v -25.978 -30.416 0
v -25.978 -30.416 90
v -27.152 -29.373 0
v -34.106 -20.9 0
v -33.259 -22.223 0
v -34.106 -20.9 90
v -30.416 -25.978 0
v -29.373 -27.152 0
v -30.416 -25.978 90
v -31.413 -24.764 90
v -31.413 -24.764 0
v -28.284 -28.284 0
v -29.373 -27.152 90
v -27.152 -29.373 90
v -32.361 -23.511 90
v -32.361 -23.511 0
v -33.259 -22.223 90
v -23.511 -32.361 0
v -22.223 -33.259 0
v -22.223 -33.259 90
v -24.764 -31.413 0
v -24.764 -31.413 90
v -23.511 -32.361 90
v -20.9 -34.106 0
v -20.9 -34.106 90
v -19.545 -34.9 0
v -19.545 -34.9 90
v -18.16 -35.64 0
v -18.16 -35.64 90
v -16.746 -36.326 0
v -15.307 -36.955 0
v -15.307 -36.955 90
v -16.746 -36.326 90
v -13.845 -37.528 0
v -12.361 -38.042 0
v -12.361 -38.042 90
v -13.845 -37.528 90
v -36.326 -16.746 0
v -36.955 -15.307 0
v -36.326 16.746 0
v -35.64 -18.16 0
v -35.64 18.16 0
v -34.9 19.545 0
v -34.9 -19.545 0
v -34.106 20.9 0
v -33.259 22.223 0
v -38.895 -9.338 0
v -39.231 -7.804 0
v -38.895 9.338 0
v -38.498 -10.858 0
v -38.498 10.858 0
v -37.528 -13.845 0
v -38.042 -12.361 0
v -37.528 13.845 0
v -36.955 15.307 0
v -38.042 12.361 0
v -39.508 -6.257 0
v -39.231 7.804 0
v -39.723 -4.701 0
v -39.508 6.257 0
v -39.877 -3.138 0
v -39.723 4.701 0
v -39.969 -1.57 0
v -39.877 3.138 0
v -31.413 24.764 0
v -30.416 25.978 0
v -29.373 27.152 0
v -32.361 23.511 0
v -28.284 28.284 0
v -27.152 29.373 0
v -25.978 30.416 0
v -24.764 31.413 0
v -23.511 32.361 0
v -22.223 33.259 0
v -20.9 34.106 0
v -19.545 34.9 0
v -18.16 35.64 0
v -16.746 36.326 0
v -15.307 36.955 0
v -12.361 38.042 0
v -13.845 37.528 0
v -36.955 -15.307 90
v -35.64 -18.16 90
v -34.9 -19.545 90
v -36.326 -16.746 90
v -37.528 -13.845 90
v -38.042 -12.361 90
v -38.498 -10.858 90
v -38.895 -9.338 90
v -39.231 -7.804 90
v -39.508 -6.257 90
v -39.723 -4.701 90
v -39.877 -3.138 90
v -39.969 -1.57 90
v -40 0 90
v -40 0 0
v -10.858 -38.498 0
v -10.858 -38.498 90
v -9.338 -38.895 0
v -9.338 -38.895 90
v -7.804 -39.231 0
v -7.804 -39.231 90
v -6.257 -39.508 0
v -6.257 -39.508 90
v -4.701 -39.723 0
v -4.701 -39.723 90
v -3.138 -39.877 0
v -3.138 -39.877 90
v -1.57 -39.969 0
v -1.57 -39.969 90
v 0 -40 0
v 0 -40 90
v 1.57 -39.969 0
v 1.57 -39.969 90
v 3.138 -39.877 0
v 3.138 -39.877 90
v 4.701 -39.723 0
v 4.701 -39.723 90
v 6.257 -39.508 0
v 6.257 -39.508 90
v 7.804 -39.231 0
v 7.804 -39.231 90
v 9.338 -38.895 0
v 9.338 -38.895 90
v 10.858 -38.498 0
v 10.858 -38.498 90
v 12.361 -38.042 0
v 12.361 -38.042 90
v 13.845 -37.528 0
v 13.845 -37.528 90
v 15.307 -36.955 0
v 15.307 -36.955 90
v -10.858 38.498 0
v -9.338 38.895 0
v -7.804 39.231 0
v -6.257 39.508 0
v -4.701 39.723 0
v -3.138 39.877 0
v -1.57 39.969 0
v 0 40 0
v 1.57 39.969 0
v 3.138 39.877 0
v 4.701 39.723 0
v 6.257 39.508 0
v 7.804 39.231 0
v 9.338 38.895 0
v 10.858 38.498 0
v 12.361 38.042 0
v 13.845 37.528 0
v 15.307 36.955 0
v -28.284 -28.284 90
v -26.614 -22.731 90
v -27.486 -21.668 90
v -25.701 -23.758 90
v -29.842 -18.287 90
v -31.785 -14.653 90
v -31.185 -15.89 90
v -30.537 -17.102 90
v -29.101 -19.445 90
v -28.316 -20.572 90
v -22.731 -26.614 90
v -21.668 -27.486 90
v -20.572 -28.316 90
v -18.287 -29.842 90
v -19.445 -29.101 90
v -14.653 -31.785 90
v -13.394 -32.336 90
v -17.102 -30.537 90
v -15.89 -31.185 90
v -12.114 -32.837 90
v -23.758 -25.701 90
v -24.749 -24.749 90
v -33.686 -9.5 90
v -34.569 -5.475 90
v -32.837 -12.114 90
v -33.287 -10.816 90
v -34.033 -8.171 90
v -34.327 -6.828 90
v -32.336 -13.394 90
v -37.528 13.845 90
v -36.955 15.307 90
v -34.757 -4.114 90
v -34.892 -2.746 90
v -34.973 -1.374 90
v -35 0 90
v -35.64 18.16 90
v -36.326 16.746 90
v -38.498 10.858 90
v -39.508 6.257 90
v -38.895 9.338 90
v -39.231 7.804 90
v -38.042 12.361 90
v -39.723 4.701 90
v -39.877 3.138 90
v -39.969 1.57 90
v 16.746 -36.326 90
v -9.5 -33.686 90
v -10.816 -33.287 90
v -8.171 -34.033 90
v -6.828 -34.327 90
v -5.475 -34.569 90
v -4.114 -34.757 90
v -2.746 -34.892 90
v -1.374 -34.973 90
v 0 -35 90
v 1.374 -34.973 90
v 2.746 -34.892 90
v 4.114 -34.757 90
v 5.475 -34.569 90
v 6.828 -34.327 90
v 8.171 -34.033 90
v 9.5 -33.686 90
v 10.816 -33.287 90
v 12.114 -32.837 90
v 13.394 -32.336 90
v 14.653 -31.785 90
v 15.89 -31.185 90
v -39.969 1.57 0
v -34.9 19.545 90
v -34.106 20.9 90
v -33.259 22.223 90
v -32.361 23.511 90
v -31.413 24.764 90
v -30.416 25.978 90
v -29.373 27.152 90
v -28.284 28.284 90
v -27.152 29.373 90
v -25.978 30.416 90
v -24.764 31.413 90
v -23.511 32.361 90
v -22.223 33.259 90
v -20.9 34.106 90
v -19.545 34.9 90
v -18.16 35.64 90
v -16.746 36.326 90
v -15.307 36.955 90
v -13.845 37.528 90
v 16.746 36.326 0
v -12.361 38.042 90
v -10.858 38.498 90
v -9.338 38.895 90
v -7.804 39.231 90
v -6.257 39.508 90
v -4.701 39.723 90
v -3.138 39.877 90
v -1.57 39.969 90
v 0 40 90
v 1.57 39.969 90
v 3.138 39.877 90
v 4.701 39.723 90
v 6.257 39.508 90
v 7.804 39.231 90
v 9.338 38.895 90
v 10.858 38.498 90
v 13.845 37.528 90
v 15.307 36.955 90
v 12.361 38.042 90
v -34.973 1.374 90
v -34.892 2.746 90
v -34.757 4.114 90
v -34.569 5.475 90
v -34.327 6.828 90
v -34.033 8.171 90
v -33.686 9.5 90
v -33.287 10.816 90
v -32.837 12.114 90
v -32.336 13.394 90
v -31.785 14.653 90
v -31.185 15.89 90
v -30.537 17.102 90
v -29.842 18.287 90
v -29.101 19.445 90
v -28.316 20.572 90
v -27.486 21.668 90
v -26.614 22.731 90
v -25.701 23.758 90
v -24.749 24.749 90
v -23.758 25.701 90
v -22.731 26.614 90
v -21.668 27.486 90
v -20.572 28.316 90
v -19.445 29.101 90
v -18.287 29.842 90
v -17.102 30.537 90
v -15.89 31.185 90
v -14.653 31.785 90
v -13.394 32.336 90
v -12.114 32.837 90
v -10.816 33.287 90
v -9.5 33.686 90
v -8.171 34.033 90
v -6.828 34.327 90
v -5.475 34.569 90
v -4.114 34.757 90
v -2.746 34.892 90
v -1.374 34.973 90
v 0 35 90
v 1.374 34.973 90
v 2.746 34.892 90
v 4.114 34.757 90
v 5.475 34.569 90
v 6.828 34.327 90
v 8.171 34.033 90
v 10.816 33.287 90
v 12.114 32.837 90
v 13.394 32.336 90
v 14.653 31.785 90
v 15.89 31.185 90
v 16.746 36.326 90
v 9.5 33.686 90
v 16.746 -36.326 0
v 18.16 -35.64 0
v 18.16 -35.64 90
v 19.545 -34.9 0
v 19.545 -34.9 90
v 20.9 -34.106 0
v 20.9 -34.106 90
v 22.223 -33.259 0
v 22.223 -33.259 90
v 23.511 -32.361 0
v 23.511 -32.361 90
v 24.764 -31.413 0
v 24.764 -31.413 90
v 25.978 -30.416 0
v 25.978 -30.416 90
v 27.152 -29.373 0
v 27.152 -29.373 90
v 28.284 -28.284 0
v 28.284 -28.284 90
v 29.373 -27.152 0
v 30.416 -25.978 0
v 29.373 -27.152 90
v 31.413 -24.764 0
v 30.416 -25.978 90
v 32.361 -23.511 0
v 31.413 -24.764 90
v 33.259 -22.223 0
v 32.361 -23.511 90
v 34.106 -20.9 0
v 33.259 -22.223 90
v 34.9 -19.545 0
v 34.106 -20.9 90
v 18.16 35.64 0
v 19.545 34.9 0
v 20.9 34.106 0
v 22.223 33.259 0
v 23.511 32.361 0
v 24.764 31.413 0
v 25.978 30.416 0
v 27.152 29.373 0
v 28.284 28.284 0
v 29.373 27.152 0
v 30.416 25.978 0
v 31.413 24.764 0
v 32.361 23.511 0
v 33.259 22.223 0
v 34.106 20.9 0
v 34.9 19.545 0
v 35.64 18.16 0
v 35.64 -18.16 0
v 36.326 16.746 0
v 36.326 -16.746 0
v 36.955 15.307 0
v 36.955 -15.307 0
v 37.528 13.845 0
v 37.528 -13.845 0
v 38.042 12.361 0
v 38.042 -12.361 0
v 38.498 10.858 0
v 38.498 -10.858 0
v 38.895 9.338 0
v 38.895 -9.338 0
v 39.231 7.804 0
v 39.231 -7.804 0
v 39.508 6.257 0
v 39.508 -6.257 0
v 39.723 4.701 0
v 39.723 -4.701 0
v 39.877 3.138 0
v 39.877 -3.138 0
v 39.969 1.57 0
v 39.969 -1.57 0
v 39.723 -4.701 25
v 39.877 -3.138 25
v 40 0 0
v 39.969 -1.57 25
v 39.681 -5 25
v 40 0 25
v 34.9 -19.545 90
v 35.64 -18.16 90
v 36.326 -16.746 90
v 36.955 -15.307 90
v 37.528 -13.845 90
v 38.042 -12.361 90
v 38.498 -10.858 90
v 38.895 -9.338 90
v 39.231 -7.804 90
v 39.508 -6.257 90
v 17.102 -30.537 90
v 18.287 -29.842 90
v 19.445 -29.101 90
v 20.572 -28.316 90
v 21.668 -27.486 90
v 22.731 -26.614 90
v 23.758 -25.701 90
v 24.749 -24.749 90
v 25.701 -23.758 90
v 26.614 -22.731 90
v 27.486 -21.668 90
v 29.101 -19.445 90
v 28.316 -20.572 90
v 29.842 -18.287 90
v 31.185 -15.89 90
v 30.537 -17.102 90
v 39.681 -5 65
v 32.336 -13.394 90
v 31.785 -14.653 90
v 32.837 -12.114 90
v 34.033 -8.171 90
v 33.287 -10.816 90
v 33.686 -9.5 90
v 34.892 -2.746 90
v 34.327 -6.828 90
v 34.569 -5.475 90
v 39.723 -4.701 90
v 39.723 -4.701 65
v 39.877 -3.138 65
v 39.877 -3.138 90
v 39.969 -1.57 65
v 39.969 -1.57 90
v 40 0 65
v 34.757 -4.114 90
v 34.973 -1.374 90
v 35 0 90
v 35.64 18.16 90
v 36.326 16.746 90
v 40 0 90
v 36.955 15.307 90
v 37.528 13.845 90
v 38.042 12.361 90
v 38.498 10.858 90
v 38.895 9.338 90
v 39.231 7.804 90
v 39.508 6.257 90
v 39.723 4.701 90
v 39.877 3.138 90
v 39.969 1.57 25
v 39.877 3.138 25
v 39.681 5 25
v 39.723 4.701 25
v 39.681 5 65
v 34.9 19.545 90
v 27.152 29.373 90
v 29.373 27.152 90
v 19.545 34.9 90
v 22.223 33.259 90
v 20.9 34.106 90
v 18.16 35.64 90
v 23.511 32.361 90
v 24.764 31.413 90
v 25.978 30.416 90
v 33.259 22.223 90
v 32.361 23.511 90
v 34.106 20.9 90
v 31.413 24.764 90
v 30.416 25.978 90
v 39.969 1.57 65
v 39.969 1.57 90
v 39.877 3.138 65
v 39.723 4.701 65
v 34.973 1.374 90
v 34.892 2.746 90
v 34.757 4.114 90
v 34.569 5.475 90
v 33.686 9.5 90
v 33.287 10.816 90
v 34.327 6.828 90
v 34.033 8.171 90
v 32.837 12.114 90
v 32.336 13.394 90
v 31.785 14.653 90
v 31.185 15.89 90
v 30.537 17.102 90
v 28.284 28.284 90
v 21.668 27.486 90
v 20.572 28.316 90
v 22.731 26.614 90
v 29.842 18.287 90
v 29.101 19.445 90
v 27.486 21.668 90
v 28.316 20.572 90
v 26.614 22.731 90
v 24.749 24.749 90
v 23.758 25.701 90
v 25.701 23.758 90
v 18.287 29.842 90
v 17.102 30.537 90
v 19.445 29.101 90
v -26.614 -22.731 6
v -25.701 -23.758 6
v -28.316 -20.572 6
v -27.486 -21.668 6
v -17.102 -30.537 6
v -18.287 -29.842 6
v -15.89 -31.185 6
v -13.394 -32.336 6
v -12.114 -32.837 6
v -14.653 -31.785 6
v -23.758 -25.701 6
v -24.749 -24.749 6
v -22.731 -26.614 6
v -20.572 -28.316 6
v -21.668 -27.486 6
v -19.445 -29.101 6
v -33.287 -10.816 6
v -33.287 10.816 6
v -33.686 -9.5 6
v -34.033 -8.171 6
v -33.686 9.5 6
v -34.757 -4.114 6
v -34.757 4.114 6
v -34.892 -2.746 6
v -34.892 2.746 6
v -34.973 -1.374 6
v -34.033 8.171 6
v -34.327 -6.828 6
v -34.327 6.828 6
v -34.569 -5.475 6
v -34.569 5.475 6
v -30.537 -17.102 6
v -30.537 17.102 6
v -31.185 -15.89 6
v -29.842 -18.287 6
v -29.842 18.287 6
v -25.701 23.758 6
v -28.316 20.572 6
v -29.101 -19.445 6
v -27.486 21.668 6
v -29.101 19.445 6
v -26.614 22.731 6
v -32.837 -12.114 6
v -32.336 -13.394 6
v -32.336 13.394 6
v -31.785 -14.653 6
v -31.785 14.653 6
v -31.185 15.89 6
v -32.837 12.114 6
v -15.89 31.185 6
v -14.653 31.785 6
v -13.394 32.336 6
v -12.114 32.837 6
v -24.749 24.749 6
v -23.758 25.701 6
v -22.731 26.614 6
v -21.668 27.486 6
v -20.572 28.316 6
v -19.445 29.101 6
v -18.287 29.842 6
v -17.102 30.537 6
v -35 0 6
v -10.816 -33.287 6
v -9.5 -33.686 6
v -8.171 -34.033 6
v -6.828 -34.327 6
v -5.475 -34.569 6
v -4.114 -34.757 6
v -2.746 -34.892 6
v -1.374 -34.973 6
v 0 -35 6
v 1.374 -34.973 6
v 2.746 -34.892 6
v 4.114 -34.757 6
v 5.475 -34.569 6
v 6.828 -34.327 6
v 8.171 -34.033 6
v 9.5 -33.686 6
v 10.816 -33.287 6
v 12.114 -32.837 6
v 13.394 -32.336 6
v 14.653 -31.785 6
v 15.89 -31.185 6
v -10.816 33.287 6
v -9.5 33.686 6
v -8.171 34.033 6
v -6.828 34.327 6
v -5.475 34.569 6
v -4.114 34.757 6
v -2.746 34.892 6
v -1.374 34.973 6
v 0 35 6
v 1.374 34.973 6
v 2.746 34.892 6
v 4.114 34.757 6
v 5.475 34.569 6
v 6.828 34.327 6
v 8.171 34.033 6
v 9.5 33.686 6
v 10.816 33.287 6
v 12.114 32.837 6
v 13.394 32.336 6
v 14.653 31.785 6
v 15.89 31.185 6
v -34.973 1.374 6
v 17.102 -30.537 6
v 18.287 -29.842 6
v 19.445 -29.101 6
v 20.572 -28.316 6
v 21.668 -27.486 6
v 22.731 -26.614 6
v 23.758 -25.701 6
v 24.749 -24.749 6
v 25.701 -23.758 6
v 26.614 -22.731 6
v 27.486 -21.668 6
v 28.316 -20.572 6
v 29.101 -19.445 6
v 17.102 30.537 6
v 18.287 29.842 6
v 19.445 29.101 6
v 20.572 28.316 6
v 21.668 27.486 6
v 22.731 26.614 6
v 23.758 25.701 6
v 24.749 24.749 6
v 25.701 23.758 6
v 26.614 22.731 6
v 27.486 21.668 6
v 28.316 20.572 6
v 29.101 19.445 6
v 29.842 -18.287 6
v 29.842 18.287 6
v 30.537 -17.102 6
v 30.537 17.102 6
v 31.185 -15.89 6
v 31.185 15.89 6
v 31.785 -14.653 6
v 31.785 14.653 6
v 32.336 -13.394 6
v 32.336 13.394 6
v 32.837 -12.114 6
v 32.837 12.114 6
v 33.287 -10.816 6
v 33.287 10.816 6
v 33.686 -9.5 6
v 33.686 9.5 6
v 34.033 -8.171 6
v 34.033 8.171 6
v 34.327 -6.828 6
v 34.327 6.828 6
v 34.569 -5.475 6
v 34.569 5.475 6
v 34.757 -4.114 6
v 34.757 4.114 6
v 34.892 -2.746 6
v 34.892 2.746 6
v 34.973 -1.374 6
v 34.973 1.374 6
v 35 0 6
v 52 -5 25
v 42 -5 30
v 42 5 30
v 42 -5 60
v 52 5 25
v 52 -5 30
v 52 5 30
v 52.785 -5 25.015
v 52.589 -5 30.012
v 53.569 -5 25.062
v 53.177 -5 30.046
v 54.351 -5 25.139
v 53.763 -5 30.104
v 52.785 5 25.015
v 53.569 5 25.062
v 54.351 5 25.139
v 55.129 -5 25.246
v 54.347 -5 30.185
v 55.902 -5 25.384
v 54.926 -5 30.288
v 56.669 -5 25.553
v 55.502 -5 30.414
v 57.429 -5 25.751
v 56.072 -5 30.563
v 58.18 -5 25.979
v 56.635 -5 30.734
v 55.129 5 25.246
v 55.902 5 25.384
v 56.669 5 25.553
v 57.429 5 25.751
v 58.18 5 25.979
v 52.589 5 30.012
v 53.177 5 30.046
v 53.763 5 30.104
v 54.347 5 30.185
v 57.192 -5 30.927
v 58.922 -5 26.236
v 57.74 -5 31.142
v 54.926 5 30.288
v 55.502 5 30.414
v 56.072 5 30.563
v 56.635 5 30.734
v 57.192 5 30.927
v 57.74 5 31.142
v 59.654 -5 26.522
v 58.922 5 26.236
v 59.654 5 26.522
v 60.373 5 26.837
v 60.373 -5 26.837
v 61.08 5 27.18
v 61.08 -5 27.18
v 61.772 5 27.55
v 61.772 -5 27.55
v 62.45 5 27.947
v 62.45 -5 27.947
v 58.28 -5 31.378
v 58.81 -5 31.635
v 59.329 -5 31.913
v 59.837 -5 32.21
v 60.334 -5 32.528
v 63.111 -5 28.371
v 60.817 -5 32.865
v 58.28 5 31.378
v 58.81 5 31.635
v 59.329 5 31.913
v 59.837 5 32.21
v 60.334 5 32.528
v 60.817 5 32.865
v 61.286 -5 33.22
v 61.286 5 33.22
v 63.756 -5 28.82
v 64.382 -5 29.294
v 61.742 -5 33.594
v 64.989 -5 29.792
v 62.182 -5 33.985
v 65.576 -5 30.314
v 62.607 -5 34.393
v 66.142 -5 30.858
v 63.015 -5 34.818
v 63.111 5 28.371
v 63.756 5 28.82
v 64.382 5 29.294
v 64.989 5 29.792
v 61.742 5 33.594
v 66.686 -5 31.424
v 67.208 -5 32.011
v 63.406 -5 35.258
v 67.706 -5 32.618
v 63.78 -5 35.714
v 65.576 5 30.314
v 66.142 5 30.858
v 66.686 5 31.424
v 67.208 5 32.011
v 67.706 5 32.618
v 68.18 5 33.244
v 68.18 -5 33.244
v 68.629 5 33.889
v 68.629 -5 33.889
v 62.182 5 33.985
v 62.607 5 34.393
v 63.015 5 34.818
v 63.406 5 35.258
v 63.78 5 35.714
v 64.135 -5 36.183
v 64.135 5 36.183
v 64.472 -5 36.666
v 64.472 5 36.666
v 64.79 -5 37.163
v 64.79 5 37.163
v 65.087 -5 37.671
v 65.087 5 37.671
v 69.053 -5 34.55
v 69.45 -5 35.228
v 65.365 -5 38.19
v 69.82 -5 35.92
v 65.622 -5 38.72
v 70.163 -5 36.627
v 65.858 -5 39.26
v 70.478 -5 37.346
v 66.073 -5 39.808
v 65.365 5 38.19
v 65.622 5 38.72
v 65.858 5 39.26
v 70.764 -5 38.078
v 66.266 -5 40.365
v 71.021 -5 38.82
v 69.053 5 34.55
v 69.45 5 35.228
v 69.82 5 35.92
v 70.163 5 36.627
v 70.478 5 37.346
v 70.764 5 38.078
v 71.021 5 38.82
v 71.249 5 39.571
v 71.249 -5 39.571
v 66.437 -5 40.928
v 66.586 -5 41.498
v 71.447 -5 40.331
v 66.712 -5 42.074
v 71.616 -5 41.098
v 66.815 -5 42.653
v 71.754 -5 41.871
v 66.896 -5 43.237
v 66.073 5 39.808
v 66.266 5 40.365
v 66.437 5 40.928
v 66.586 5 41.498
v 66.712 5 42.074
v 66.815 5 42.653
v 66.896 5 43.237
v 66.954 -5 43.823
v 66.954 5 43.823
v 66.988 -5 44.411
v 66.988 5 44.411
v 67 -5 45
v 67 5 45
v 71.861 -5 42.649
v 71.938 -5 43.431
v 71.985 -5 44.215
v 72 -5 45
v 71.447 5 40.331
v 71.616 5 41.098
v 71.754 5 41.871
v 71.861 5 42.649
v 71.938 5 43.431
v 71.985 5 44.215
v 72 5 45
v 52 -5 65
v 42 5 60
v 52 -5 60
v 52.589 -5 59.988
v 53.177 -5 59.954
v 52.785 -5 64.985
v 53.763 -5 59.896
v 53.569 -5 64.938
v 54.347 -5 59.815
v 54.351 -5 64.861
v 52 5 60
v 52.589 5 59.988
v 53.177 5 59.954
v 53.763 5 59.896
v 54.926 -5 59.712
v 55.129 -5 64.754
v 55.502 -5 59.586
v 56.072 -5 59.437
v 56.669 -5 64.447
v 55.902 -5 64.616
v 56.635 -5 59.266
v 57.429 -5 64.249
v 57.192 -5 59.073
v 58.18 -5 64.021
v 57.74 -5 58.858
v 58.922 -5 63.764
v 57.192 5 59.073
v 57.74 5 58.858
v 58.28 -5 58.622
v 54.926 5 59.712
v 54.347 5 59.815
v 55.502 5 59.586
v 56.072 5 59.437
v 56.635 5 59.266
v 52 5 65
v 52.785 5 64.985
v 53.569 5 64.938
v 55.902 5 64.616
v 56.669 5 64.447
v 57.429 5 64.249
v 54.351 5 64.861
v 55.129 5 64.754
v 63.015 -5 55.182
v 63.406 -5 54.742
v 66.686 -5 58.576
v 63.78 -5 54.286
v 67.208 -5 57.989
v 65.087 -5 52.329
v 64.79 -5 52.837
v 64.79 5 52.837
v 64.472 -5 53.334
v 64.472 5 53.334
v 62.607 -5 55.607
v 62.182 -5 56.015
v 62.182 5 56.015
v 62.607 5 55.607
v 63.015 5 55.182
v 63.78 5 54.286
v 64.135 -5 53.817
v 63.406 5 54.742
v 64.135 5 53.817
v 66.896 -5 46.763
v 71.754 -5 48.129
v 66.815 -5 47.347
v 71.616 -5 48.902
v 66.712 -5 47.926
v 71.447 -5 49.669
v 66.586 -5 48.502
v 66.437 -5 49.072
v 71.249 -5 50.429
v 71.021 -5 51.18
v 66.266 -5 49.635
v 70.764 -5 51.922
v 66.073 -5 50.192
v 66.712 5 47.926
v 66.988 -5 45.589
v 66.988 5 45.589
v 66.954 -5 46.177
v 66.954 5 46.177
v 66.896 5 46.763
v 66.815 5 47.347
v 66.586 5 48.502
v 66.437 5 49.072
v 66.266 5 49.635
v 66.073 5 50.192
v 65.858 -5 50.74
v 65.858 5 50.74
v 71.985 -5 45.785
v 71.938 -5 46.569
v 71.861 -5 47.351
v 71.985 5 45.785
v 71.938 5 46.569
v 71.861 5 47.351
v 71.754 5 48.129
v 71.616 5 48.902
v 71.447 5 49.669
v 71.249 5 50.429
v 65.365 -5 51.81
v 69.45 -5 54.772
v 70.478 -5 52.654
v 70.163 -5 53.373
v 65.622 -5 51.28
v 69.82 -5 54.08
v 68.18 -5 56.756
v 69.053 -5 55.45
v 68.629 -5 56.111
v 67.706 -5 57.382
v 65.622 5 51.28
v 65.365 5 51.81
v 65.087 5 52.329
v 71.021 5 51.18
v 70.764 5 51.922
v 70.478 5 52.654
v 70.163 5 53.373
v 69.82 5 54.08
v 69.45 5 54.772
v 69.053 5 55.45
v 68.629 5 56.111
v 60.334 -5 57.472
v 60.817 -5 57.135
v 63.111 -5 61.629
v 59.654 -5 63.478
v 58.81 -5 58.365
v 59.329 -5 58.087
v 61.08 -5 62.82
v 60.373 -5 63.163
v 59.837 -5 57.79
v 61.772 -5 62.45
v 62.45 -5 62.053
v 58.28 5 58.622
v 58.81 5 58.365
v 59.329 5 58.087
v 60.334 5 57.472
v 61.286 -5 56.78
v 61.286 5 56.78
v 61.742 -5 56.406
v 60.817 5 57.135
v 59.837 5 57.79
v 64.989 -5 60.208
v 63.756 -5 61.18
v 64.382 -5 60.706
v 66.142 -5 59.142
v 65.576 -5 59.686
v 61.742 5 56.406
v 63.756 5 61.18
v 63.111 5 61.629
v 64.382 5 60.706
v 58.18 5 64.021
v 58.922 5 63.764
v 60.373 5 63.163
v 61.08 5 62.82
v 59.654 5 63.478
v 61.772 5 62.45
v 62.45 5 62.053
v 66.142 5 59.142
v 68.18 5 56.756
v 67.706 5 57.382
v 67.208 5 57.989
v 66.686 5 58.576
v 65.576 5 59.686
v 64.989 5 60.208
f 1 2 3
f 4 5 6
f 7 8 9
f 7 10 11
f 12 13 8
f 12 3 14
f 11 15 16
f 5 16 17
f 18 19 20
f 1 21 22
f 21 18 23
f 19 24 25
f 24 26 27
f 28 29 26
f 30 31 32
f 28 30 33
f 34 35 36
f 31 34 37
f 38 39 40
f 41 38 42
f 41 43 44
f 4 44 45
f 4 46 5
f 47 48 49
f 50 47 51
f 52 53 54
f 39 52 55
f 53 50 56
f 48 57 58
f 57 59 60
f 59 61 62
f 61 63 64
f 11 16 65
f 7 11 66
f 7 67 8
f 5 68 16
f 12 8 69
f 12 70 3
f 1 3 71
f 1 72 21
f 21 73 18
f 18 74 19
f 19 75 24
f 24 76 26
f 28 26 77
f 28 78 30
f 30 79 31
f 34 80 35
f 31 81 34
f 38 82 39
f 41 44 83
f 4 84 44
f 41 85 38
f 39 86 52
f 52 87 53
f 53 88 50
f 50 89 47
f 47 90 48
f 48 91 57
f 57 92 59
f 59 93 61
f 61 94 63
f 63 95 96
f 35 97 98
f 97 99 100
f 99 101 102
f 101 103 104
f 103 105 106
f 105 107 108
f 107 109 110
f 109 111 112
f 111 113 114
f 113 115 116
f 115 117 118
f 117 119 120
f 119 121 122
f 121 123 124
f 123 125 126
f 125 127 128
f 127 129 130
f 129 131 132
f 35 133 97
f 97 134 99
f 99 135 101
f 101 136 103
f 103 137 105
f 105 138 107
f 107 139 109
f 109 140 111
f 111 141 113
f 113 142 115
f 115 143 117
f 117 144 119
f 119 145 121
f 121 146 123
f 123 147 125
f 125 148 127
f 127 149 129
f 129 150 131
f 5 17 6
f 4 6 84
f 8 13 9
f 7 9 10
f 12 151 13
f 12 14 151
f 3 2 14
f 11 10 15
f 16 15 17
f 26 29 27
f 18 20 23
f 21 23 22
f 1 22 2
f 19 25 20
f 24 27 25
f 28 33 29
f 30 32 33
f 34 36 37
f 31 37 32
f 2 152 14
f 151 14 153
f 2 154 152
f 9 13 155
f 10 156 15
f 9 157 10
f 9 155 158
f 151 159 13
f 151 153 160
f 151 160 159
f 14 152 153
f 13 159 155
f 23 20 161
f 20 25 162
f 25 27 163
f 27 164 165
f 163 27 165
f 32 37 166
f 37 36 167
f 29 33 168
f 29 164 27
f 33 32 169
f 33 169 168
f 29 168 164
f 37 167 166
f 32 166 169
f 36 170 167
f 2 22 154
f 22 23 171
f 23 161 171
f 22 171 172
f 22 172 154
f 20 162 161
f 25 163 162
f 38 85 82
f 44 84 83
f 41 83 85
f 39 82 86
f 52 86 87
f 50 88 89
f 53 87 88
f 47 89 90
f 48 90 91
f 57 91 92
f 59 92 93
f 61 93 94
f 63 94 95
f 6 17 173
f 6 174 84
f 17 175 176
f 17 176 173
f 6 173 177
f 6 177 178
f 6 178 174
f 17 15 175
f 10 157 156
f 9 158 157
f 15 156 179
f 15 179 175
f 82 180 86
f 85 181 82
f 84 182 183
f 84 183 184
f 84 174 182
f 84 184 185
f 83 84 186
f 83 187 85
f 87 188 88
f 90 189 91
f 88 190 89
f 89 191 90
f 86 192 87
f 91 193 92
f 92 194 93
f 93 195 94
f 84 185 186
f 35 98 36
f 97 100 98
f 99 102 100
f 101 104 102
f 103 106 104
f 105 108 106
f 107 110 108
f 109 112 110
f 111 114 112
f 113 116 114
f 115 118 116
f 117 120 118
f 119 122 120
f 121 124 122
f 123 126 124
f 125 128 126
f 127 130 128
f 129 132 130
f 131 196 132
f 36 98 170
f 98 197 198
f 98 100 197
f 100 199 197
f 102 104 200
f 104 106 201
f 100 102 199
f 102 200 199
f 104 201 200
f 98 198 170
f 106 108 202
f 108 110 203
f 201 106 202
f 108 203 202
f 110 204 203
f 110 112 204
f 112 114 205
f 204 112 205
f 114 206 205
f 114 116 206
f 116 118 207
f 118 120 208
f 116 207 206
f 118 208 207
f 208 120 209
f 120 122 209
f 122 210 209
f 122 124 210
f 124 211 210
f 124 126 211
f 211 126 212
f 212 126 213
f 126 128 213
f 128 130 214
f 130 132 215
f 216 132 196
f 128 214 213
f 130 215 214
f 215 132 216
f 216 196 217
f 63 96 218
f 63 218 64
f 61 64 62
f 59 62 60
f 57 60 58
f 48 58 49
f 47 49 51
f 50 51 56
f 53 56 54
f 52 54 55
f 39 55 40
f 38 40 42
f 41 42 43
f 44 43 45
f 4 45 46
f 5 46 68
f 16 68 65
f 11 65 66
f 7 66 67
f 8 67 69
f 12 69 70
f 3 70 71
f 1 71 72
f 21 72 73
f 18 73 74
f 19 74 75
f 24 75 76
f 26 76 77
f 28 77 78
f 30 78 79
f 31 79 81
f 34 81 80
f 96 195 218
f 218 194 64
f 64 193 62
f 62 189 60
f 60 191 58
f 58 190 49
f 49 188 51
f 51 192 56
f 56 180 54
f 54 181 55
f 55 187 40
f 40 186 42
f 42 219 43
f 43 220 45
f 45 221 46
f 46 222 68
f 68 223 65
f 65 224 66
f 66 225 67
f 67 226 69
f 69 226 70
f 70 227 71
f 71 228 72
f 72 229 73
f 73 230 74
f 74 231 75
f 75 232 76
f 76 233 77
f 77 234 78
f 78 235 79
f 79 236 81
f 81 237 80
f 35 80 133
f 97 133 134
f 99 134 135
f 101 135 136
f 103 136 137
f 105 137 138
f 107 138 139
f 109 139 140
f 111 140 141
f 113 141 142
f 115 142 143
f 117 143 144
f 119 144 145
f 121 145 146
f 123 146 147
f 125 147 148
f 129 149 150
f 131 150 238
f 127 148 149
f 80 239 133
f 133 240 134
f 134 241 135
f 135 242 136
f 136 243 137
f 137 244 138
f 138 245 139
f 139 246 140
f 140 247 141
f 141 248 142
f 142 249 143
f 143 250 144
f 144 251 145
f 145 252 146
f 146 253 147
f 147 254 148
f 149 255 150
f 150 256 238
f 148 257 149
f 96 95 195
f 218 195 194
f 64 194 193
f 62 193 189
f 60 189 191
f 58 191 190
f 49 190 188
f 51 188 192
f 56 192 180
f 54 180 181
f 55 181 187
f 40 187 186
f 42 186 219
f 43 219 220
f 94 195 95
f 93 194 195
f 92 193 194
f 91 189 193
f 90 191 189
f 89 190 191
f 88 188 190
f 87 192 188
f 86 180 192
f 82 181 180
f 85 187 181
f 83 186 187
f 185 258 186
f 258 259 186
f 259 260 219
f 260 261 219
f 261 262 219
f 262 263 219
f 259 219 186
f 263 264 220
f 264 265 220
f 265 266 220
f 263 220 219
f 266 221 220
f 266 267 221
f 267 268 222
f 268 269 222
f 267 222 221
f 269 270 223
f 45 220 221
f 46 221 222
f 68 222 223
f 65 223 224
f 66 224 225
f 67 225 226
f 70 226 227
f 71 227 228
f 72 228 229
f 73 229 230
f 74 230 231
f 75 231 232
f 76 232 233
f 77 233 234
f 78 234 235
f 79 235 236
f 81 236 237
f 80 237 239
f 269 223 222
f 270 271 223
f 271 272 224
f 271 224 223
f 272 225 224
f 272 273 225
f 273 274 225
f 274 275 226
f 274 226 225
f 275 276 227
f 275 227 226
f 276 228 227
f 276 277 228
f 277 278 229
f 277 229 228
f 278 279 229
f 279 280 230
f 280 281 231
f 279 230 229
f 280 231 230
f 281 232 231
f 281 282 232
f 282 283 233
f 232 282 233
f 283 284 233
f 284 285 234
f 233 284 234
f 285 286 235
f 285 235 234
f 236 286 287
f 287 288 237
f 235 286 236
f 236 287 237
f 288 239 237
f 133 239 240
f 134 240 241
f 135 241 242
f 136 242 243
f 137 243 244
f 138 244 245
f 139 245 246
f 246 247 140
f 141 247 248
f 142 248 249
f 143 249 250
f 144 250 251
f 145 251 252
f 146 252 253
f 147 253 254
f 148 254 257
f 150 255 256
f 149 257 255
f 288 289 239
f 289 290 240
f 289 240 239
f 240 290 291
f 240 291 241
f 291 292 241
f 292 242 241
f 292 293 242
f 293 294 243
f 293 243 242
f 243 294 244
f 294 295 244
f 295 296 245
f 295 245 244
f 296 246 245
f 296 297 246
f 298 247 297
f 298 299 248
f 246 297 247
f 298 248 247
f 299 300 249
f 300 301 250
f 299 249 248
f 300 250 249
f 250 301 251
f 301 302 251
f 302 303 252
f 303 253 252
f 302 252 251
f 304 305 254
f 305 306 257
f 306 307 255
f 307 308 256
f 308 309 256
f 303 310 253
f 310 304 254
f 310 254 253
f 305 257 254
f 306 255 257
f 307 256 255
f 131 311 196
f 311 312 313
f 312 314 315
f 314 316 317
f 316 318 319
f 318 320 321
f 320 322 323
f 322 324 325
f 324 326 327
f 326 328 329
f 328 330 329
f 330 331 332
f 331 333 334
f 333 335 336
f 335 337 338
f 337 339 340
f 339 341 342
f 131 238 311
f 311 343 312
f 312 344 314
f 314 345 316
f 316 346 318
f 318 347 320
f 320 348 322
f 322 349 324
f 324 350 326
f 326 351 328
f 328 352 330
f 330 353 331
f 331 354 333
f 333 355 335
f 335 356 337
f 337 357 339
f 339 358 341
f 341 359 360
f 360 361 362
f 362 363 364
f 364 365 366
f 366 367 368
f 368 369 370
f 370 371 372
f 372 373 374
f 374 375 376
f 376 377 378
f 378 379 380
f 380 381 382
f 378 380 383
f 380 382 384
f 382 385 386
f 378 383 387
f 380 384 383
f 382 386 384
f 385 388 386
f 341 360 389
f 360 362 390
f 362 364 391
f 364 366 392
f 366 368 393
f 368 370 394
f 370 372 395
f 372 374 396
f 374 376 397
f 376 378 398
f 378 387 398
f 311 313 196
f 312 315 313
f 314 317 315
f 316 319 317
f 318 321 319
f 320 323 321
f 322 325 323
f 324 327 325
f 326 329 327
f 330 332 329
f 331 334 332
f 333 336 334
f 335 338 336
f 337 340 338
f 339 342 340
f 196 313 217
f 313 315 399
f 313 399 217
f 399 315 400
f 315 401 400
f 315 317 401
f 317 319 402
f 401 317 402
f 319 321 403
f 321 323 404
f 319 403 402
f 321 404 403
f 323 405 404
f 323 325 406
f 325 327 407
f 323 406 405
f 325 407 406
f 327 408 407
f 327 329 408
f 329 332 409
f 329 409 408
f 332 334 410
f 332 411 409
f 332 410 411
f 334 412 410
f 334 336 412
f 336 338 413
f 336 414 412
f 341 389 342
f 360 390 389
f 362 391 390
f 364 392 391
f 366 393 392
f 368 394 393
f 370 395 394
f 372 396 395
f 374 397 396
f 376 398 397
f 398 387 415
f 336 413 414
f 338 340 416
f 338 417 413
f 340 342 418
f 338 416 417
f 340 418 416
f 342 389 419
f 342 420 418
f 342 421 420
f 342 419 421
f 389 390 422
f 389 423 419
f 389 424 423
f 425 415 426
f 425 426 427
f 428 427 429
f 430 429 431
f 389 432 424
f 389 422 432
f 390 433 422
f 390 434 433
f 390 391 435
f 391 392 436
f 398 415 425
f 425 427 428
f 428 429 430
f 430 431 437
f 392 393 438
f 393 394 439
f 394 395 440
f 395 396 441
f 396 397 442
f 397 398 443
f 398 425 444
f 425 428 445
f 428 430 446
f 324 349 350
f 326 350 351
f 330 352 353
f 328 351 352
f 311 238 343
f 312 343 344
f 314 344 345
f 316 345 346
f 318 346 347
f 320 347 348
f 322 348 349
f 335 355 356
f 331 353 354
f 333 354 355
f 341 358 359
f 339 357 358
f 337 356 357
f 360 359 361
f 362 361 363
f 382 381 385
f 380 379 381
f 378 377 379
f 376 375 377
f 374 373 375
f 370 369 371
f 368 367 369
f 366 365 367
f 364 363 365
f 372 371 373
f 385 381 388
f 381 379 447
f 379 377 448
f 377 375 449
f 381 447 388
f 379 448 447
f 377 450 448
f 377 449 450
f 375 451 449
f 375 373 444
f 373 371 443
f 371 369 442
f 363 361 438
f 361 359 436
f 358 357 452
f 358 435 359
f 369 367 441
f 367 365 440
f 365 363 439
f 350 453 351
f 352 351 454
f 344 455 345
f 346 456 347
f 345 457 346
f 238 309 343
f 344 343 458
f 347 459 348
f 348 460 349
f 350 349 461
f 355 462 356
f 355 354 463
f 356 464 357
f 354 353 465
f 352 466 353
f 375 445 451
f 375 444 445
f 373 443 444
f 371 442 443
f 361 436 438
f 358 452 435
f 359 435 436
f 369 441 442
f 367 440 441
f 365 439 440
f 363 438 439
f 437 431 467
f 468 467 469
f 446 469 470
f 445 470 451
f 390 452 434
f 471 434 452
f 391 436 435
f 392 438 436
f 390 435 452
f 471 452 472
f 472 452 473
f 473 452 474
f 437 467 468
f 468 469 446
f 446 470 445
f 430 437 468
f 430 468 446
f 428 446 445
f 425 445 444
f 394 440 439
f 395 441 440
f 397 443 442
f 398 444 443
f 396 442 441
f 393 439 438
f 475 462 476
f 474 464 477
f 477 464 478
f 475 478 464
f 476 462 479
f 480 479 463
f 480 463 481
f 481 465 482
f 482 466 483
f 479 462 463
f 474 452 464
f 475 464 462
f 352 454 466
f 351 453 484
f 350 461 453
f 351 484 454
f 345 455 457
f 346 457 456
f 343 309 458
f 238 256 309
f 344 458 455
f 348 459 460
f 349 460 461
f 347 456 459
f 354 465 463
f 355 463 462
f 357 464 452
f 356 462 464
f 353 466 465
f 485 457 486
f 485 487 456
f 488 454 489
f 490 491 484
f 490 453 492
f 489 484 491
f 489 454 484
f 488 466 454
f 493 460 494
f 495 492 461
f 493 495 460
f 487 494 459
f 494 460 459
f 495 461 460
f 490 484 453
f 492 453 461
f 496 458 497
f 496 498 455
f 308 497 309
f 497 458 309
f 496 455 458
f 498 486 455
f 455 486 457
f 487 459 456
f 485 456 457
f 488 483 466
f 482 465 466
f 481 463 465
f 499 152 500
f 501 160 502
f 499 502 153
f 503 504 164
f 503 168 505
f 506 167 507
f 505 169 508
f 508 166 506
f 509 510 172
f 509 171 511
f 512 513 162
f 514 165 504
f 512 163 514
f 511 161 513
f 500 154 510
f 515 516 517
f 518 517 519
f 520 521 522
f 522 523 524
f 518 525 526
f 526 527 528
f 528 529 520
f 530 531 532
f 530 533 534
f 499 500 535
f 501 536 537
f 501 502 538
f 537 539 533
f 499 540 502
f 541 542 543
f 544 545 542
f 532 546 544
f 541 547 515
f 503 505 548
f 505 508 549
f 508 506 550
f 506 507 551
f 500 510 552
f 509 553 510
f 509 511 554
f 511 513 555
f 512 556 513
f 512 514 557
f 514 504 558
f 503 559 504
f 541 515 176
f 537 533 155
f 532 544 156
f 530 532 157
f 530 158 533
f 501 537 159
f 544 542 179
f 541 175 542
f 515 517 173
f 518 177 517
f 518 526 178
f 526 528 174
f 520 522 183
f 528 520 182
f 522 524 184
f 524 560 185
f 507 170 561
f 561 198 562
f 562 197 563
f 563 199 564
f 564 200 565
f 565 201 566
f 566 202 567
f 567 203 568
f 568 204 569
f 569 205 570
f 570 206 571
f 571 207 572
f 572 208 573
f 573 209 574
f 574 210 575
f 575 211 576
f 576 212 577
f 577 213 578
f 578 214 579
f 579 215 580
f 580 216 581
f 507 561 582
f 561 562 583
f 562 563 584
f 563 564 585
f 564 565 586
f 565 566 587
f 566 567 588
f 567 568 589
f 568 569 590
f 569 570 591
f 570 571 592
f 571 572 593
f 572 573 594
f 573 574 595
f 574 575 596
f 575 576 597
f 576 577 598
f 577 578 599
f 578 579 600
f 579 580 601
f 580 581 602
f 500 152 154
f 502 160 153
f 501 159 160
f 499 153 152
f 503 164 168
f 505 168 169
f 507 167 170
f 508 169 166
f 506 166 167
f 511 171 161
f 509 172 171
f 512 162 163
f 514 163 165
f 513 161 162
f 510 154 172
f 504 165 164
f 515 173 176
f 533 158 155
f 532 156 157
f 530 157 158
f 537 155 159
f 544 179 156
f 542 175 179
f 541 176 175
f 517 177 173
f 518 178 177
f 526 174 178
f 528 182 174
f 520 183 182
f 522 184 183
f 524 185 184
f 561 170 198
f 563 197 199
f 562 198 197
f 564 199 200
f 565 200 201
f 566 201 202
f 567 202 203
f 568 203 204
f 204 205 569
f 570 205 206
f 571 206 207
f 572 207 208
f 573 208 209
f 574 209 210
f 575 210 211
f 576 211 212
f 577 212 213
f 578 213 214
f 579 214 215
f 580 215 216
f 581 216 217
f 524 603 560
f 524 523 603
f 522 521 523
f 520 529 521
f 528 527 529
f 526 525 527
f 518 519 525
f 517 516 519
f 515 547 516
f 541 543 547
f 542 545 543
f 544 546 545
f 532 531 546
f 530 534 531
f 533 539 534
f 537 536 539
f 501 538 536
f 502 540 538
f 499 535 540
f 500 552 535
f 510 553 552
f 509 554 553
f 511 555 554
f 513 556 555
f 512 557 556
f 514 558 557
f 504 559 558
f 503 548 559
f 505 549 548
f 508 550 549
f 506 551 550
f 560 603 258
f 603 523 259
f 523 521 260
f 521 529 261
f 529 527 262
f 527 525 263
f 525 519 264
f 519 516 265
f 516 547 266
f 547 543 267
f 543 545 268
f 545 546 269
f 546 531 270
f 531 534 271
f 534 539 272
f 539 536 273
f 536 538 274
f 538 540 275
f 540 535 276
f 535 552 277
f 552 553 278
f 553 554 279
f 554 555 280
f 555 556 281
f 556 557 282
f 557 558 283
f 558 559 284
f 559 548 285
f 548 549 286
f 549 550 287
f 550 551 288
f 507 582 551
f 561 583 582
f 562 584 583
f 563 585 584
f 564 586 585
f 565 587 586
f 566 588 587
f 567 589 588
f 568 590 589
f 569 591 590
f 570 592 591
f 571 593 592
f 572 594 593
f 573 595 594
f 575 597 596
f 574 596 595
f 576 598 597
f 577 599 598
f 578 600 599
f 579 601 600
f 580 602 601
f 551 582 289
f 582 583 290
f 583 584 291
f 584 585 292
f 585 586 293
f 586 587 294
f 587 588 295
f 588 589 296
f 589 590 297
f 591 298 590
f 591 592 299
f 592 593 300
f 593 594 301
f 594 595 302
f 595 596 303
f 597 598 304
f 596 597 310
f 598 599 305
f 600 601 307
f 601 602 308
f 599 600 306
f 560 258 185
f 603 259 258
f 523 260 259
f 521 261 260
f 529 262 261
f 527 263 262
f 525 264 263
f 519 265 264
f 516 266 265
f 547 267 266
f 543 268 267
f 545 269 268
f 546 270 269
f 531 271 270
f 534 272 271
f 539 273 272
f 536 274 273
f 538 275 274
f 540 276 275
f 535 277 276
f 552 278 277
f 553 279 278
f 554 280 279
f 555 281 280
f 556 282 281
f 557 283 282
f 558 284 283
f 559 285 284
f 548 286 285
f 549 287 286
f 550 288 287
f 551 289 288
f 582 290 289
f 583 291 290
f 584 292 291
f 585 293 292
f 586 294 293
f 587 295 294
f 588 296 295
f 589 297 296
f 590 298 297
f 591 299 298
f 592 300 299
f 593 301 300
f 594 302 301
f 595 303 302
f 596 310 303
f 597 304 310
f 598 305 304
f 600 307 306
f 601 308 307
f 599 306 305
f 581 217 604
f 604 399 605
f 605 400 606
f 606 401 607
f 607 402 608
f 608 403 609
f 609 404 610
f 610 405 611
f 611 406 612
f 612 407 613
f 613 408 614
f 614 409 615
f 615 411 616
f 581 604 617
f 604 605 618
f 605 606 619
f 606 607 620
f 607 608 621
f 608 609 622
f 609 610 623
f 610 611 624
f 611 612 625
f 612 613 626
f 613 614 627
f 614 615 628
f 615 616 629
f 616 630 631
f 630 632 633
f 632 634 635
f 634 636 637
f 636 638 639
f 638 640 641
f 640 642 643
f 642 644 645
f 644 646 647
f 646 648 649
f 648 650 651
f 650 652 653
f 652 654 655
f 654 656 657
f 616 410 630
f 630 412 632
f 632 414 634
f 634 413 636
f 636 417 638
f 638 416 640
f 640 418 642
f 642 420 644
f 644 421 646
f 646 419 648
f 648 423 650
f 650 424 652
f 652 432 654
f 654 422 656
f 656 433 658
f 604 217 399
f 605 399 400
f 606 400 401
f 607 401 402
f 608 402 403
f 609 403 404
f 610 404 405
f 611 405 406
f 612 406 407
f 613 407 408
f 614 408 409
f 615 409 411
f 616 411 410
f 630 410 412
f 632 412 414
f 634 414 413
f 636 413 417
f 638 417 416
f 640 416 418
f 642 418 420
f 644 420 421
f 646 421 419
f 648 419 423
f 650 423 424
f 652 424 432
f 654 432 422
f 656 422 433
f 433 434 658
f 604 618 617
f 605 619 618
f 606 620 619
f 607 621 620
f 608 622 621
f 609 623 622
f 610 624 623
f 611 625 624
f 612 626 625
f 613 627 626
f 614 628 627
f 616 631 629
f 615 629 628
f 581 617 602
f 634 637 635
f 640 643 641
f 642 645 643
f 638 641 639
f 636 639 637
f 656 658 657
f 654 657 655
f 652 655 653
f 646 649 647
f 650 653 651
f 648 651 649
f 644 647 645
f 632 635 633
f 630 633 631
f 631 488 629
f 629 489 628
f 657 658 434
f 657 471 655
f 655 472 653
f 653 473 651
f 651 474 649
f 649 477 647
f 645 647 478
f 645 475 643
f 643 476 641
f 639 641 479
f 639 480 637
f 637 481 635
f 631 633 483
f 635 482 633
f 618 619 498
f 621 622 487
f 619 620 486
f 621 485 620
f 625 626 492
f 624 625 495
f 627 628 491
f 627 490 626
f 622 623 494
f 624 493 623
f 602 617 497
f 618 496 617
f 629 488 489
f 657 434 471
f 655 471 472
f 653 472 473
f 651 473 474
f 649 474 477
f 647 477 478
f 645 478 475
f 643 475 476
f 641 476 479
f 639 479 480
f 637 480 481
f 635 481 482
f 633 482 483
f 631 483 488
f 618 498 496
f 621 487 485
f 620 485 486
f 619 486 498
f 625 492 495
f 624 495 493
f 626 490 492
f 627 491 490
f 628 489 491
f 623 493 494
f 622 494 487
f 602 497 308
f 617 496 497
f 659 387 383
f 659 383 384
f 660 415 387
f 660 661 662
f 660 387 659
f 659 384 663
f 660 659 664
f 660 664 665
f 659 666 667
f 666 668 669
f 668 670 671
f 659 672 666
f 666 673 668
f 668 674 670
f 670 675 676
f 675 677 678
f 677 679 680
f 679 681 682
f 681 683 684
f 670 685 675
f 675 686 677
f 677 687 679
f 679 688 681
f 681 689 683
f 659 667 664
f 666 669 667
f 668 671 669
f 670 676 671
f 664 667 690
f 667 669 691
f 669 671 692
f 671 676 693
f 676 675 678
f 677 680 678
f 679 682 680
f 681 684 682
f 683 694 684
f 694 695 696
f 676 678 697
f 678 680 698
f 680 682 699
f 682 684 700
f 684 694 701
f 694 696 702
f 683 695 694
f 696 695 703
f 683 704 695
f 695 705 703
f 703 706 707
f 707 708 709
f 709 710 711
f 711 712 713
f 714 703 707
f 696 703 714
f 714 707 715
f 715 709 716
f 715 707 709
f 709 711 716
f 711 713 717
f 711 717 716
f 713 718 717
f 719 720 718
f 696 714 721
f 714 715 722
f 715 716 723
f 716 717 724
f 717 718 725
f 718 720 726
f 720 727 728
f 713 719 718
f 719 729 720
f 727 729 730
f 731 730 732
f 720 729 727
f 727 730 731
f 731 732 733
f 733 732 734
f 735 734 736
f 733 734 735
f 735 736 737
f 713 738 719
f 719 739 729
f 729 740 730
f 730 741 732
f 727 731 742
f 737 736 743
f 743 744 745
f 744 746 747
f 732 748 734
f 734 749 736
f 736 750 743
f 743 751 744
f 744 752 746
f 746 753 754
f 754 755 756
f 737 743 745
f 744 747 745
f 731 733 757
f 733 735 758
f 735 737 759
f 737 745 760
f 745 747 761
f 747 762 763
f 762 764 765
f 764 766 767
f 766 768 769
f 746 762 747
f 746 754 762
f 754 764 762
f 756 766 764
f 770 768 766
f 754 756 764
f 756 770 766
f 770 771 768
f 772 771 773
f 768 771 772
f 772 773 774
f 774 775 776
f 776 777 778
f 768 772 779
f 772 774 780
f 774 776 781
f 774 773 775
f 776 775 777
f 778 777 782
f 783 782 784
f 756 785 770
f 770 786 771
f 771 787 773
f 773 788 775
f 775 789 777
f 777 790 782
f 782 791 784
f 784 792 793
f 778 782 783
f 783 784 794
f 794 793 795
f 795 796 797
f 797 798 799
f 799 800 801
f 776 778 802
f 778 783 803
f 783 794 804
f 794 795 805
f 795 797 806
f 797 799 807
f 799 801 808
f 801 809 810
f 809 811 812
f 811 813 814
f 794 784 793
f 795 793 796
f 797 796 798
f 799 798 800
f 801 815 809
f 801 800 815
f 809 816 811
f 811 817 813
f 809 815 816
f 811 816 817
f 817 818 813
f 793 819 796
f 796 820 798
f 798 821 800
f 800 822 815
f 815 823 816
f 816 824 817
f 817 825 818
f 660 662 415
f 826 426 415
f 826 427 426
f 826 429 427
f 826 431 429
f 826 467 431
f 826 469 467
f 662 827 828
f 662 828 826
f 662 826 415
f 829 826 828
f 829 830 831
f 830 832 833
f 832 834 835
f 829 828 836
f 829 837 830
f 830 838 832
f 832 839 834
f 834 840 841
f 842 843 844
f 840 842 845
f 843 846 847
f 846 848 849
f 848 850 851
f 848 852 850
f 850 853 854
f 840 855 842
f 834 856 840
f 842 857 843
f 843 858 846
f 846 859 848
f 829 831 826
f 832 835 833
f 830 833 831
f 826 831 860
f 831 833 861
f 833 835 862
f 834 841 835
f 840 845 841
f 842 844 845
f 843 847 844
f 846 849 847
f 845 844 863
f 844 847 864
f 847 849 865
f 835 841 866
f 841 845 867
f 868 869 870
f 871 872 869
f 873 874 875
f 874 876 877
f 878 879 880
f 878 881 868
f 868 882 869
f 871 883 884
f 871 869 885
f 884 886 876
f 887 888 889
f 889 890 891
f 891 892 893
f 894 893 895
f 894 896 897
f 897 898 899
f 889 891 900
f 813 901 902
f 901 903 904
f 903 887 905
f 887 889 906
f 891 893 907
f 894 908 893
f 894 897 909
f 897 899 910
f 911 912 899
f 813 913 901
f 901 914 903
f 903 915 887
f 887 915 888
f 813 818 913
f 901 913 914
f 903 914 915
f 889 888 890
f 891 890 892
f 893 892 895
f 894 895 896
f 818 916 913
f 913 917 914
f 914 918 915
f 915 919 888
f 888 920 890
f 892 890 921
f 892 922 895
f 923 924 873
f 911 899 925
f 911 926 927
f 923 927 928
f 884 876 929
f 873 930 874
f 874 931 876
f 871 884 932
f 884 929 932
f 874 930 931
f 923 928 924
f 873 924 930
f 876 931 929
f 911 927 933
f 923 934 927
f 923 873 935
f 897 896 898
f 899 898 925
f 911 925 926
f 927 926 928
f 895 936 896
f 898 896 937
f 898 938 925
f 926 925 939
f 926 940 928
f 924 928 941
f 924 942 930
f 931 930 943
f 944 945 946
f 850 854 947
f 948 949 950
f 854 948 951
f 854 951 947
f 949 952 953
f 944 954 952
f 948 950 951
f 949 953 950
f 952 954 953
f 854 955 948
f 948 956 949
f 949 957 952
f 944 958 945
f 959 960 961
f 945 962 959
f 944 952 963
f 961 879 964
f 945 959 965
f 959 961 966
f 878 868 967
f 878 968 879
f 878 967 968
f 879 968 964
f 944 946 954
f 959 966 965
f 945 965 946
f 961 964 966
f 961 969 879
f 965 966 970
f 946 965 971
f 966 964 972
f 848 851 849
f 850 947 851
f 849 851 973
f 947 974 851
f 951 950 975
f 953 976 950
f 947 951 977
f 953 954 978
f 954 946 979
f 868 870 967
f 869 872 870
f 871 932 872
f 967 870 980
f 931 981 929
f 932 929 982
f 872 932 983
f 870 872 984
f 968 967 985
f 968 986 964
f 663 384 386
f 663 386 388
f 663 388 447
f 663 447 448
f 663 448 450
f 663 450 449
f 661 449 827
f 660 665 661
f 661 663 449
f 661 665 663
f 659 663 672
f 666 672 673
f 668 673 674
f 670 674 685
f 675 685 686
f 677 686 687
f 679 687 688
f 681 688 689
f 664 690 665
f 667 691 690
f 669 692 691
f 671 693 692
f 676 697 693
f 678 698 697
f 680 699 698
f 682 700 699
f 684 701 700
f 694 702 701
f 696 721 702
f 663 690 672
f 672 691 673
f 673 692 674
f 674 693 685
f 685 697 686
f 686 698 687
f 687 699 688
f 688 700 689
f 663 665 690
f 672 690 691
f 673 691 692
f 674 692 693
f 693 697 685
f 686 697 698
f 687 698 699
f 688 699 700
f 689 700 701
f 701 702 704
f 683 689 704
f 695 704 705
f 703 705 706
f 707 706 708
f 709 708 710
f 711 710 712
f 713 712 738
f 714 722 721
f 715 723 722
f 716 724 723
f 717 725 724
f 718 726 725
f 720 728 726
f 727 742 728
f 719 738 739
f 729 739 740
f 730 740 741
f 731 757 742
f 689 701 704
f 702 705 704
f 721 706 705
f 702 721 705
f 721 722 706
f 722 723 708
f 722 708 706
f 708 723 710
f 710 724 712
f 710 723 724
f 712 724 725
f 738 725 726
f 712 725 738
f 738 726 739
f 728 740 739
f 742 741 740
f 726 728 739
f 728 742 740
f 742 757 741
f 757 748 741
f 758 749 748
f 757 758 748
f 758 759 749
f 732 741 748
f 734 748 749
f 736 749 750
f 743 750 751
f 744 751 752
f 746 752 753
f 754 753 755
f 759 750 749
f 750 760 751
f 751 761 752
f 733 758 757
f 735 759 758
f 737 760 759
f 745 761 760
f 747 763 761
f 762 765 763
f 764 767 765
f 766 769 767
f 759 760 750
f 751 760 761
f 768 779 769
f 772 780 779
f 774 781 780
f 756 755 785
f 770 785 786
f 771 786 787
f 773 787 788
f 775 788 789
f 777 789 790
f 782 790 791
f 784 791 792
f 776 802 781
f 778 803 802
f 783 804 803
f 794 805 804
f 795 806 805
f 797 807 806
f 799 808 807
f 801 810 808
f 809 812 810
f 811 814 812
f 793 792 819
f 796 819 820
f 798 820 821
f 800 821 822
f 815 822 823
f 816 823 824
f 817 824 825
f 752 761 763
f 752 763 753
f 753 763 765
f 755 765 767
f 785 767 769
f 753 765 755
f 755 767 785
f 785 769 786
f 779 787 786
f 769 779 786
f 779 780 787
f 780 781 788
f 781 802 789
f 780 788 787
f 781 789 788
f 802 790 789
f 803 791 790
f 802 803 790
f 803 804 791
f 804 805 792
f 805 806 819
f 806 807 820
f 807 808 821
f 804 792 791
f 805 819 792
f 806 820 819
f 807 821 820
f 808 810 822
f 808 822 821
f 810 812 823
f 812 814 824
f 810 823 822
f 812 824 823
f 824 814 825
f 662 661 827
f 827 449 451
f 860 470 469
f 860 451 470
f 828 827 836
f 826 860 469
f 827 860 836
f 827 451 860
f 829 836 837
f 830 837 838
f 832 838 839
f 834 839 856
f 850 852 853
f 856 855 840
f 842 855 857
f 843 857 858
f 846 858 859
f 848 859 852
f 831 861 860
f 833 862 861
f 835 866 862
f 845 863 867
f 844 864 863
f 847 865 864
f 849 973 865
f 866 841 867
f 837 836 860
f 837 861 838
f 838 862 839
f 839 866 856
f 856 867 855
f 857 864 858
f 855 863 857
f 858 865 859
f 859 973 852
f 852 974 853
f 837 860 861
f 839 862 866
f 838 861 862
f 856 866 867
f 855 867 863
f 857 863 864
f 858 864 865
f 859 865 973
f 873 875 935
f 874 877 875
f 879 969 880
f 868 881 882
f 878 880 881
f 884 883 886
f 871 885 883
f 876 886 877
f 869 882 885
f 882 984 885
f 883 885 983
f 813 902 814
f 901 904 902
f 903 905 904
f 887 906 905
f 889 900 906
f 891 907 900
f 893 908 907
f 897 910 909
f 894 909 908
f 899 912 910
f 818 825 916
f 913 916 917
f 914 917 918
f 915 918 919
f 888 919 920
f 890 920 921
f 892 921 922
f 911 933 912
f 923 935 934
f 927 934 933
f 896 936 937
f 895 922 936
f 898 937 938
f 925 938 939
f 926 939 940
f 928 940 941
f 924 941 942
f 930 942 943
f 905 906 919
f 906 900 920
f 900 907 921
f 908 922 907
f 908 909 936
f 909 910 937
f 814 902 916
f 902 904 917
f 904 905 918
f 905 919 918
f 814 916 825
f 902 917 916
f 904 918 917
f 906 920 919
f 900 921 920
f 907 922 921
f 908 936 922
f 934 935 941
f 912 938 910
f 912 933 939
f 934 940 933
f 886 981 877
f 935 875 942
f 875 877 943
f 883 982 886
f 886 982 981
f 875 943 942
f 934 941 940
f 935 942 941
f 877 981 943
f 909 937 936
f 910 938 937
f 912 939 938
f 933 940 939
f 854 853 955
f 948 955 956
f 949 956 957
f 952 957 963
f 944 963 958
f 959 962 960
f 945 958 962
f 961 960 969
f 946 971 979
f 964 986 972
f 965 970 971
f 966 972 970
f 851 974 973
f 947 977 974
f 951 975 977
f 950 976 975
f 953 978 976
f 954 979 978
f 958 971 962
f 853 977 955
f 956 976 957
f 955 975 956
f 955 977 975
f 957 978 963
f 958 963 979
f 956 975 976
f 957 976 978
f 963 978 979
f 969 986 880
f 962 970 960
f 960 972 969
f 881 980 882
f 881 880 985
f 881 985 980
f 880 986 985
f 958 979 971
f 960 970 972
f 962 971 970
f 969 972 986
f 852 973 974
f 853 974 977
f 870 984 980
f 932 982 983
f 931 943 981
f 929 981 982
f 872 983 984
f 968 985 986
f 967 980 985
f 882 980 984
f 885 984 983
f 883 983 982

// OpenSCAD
$fn = 160;

outer_diameter = 80;
inner_diameter = 70;
mug_height = 90;
bottom_thickness = 6;

handle_open_width = 25;
handle_open_height = 30;
handle_wall = 5;
handle_depth = 10;
handle_overlap = 3;

handle_root_x = outer_diameter / 2 - handle_overlap;
handle_center_z = mug_height / 2;

epsilon = 0.1;

// 本体側が直線、外側の円弧が半円の D 字断面。
module d_profile(width, height) {
    radius = height / 2;
    straight_length = width - radius;

    intersection() {
        union() {
            translate([0, -radius])
                square([straight_length, height]);

            translate([straight_length, 0])
                circle(r = radius);
        }

        translate([0, -radius])
            square([width, height]);
    }
}

module mug_body() {
    difference() {
        cylinder(d = outer_diameter, h = mug_height);

        translate([0, 0, bottom_thickness])
            cylinder(
                d = inner_diameter,
                h = mug_height - bottom_thickness + epsilon
            );
    }
}

module mug_handle() {
    // XZ 平面に配置し、+X 側の外壁へ 3mm 食い込ませる。
    translate([handle_root_x, 0, handle_center_z])
        rotate([90, 0, 0])
            linear_extrude(
                height = handle_depth,
                center = true,
                convexity = 10
            )
                difference() {
                    d_profile(
                        handle_open_width + 2 * handle_wall,
                        handle_open_height + 2 * handle_wall
                    );

                    translate([handle_wall, 0])
                        d_profile(
                            handle_open_width,
                            handle_open_height
                        );
                }
}

union() {
    mug_body();
    mug_handle();
}
